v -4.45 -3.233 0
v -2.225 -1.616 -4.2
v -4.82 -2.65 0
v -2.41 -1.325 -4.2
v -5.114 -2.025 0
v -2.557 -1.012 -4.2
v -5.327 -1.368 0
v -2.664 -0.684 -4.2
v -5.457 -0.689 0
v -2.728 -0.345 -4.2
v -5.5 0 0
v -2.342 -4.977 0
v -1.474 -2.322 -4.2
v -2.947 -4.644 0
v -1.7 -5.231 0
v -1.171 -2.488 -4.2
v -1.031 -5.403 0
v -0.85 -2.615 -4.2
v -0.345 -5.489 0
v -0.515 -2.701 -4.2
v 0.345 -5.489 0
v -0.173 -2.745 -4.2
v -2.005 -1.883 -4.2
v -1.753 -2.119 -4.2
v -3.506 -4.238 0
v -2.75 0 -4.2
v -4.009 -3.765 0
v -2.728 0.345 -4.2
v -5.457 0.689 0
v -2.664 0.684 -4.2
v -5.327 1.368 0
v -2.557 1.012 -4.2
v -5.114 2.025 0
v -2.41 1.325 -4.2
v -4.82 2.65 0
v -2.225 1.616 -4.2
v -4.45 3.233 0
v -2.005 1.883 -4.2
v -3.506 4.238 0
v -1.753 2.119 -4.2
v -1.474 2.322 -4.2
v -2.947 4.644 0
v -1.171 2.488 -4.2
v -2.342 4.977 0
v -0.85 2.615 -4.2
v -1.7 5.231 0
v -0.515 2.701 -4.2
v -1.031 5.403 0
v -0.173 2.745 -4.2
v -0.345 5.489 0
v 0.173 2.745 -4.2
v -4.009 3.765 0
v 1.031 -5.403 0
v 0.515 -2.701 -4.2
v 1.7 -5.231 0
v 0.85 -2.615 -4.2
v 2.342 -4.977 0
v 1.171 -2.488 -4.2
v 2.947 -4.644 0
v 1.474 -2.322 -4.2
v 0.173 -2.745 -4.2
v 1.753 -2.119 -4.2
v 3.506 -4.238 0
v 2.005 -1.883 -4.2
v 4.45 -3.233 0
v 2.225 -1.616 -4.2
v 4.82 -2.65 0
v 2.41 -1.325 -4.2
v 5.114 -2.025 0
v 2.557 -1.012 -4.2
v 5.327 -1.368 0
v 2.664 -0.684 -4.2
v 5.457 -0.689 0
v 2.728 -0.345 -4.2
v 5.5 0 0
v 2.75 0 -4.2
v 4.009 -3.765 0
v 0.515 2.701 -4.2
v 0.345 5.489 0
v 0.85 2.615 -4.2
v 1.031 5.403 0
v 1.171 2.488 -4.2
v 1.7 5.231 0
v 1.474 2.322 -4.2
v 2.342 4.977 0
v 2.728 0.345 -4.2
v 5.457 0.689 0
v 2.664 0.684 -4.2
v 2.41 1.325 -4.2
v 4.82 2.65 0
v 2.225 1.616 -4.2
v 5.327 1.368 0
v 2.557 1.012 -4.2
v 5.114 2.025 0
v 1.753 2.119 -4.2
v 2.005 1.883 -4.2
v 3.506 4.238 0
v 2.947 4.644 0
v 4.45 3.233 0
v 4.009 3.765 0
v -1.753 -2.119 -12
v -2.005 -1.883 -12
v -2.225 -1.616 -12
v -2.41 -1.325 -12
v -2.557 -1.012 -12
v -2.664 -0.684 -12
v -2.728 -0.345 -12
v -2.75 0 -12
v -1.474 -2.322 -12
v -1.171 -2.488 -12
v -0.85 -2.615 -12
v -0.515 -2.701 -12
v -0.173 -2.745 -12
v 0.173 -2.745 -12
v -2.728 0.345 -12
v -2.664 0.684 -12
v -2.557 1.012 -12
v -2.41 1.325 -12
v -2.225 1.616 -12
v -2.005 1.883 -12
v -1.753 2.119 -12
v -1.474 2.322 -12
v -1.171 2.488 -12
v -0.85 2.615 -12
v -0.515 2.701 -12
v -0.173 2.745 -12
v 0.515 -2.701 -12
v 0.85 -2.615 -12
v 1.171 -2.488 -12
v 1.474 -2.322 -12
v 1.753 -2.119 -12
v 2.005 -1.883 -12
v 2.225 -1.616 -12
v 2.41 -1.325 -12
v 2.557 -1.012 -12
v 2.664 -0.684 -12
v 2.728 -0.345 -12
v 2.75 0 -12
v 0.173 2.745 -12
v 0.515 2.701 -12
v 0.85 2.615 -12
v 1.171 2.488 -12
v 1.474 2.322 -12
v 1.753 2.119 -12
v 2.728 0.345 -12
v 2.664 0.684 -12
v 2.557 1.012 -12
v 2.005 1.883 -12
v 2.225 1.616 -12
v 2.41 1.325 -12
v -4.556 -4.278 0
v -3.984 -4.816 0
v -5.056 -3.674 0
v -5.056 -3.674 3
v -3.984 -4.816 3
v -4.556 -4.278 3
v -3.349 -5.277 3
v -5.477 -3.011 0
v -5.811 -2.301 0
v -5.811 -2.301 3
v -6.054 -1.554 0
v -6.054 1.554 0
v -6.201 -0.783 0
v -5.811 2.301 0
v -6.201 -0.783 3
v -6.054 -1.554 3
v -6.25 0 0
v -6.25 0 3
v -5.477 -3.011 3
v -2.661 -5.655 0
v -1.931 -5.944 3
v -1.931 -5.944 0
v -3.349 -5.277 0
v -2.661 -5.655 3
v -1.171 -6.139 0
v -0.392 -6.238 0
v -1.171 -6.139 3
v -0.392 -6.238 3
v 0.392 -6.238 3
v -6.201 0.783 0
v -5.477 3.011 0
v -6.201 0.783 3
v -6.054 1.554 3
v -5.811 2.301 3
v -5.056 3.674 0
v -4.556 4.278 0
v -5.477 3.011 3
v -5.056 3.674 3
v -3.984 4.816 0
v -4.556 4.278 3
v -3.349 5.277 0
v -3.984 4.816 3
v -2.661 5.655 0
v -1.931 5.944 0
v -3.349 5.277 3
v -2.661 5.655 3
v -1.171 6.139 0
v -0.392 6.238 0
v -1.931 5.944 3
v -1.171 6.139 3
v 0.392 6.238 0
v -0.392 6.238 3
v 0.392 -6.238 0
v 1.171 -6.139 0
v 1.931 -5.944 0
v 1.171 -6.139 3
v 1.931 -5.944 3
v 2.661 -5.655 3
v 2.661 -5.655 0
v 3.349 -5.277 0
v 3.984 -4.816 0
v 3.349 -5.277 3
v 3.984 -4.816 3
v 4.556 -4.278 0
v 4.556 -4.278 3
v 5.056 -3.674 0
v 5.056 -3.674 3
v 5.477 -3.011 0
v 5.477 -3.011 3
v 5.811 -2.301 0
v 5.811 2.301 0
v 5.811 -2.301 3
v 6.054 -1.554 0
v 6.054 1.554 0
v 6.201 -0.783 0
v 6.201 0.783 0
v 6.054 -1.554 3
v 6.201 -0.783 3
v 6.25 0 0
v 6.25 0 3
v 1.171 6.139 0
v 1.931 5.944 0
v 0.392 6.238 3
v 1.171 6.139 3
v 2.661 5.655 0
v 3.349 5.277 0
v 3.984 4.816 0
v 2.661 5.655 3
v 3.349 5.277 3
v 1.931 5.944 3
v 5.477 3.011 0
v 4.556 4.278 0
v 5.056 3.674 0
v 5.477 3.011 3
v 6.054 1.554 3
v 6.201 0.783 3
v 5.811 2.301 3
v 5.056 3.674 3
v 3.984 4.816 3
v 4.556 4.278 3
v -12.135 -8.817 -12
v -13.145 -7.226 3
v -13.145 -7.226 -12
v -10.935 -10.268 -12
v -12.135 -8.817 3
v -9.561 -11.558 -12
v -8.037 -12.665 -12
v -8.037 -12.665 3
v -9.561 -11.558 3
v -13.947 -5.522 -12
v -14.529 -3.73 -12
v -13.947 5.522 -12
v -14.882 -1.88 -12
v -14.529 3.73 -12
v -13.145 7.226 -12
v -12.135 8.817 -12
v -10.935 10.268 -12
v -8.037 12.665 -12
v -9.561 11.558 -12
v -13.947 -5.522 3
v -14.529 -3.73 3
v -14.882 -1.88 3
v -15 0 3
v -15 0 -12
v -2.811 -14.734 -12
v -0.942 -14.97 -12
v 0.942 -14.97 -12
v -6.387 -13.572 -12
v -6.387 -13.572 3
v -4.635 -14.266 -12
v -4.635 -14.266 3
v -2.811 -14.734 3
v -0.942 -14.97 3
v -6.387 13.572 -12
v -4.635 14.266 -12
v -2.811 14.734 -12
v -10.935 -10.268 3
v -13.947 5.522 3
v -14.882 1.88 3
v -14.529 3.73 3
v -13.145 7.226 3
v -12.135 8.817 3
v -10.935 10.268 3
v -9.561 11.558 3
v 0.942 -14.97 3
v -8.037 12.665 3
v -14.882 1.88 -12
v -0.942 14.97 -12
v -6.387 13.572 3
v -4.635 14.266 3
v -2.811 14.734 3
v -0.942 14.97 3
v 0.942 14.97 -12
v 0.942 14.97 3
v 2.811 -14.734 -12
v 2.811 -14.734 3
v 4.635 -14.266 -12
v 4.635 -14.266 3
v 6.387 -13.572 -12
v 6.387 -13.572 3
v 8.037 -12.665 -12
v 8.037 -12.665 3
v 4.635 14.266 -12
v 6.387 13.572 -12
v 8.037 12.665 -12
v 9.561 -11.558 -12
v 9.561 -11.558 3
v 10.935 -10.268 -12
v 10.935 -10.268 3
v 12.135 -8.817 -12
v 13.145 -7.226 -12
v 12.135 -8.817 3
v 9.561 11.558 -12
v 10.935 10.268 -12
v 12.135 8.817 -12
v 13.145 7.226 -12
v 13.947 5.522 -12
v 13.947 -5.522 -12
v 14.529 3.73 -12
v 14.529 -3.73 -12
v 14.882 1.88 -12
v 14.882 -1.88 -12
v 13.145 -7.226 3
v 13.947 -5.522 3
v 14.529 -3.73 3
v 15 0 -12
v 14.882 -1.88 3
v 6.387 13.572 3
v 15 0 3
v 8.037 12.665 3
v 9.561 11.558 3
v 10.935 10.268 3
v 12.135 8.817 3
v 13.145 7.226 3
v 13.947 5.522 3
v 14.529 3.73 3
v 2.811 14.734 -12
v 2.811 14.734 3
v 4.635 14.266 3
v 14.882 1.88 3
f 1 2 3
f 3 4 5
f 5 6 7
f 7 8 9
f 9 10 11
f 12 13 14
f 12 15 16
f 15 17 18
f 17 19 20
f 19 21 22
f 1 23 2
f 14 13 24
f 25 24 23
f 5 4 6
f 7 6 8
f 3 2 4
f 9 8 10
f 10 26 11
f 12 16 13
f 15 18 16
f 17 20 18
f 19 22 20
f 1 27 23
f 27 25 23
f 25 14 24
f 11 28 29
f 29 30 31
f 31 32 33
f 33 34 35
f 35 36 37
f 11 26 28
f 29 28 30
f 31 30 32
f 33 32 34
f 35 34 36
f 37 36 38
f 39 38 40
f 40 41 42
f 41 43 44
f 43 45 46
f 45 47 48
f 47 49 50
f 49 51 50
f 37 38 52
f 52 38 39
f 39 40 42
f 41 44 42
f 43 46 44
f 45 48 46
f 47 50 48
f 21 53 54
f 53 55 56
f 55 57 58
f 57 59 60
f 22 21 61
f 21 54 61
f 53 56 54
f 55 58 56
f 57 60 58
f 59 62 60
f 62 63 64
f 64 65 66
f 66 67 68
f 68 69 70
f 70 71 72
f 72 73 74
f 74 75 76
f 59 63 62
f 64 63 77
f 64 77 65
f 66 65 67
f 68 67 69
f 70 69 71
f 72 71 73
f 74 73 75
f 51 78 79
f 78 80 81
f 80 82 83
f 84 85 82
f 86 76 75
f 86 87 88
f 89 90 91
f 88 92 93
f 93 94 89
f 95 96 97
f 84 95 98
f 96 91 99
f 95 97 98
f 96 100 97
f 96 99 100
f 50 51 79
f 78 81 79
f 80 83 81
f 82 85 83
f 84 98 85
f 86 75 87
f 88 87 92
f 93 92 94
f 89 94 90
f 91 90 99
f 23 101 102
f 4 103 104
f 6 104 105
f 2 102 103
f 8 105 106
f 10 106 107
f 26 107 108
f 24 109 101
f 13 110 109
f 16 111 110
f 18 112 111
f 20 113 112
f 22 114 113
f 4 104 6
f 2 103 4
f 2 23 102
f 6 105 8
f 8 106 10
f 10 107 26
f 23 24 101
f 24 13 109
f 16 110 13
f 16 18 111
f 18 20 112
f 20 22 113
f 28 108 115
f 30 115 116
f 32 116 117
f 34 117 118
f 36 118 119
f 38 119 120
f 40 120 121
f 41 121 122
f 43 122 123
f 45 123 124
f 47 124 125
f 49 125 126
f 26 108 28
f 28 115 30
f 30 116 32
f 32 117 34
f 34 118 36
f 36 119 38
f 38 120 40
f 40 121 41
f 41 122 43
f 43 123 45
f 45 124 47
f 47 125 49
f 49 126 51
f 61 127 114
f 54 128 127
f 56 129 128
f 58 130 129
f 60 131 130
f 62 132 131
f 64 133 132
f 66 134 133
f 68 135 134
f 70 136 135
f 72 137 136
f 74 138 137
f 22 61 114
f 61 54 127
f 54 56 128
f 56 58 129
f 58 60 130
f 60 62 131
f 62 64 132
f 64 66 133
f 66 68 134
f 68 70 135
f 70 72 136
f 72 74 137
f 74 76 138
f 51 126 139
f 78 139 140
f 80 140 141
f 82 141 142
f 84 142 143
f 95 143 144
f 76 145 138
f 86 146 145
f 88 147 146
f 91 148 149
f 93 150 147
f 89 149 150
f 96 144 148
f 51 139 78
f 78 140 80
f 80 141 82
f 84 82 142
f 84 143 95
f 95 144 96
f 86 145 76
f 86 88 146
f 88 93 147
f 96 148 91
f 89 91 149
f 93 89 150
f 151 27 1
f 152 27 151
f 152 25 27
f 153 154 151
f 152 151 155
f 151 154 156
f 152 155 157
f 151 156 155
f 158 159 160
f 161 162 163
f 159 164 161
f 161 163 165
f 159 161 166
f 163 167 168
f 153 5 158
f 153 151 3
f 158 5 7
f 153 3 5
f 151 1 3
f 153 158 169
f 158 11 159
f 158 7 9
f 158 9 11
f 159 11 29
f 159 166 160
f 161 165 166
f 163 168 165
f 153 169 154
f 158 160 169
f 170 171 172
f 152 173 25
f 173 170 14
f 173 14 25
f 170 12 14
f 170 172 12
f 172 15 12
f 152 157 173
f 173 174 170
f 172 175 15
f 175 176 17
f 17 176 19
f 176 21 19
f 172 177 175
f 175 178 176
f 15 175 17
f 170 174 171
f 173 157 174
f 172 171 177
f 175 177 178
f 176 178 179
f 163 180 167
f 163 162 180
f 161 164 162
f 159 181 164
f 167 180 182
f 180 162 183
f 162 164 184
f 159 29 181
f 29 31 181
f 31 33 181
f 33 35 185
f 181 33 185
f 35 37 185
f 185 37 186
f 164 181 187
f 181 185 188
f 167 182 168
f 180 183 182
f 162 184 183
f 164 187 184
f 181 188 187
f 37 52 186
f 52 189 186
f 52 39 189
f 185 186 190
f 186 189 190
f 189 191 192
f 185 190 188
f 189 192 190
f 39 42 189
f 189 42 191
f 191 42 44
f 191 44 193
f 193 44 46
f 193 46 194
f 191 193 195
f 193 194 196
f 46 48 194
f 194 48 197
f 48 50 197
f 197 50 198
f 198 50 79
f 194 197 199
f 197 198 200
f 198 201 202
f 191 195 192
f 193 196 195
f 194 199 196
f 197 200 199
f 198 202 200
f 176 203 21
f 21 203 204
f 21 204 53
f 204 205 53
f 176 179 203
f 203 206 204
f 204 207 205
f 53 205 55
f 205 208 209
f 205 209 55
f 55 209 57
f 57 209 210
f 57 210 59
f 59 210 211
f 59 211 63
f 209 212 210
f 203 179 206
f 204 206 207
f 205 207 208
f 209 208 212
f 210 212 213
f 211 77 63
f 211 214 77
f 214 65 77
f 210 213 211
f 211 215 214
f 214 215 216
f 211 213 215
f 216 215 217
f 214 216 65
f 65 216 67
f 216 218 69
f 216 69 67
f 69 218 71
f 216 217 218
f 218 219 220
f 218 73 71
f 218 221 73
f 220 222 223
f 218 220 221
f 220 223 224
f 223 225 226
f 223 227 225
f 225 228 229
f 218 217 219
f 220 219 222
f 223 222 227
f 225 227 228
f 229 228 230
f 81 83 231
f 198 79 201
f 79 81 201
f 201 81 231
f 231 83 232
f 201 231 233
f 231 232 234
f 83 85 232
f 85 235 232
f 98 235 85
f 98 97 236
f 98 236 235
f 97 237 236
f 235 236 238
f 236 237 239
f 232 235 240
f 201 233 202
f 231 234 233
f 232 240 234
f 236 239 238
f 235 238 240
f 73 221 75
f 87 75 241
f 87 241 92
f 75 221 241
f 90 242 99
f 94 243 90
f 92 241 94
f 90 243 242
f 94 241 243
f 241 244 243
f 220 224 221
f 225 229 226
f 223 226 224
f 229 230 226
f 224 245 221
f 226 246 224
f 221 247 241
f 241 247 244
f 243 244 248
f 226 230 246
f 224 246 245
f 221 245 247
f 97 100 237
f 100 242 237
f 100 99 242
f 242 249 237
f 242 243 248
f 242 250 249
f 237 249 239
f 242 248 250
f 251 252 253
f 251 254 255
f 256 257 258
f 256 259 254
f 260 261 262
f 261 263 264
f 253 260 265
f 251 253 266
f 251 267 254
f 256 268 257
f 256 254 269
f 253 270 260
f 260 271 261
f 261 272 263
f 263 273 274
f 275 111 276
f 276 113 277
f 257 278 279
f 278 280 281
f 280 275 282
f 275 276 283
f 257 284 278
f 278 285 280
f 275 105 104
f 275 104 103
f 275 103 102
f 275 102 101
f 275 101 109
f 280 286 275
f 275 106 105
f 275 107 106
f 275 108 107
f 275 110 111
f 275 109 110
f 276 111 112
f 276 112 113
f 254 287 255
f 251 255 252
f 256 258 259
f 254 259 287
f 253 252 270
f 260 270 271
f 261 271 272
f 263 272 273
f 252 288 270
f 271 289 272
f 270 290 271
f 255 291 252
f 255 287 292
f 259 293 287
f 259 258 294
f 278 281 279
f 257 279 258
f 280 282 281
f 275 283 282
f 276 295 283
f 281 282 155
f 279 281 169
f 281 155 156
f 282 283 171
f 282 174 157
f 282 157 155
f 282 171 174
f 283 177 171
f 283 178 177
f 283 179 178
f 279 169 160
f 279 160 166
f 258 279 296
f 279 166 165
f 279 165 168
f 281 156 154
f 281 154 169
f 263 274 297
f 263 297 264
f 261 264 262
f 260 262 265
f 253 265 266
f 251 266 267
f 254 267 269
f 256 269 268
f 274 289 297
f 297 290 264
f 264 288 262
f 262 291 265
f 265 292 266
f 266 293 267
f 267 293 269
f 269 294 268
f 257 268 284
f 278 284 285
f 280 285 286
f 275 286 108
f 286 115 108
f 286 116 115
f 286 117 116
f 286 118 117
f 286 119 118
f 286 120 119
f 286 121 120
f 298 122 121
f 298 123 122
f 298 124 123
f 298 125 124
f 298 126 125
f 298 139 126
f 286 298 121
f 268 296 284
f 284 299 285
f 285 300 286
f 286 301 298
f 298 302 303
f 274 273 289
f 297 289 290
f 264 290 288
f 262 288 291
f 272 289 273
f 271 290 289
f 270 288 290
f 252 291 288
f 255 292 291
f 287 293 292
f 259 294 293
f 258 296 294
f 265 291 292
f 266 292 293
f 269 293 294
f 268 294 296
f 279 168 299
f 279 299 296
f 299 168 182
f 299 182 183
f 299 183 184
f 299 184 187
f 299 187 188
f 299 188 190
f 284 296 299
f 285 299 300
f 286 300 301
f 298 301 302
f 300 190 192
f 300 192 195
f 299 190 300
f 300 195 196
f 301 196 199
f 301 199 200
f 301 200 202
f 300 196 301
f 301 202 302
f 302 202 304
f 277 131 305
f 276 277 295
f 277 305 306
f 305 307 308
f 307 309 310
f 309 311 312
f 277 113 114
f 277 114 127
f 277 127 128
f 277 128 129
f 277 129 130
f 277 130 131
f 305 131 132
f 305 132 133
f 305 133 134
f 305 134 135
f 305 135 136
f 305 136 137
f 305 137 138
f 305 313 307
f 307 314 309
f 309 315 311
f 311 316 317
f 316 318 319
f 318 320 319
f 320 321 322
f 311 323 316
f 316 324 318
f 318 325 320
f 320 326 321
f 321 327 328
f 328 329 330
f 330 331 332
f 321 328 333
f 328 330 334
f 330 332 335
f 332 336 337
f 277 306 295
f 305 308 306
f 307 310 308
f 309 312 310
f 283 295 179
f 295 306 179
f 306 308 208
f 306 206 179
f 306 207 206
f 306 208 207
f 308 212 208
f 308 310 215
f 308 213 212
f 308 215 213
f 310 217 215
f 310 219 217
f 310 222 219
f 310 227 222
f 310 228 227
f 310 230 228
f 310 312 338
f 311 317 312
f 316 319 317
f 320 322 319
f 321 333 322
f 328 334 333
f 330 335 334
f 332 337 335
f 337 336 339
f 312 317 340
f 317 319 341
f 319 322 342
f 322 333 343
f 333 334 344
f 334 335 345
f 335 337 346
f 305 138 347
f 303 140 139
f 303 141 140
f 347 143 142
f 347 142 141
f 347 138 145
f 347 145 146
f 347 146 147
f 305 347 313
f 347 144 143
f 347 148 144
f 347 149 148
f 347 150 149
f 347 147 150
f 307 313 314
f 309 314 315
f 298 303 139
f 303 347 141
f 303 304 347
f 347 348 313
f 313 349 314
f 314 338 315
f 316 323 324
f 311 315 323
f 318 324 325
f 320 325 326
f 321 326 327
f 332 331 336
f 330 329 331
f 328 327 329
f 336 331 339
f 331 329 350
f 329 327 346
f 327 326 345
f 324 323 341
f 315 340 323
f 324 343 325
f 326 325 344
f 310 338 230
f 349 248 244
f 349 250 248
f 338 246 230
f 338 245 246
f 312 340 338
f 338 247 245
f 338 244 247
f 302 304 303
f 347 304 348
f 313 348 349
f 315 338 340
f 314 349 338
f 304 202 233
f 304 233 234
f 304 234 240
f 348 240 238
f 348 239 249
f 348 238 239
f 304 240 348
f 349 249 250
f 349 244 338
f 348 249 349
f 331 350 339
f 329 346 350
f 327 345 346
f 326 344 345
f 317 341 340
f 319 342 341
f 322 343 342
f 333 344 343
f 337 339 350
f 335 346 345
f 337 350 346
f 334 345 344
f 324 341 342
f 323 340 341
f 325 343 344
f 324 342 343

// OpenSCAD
$fn = 50;

difference() {
	union() {
		translate(v = [0, 0, -12.0]) {
			cylinder(h = 15, r = 15.0);
		}
	}
	union() {
		translate(v = [0, 0, 0]) {
			rotate(a = [0, 0, 0]) {
				difference() {
					union() {
						translate(v = [0, 0, -15.0]) {
							cylinder(h = 15, r = 2.25);
						}
						translate(v = [0, 0, -4.2]) {
							cylinder(h = 4.2, r1 = 2.75, r2 = 5.5);
						}
						translate(v = [0, 0, -15.0]) {
							cylinder(h = 15, r = 2.75);
						}
						translate(v = [0, 0, -15.0]) {
							cylinder(h = 15, r = 2.25);
						}
					}
					union();
				}
			}
		}
		#cylinder(h = 3, r = 6.25);
	}
}
